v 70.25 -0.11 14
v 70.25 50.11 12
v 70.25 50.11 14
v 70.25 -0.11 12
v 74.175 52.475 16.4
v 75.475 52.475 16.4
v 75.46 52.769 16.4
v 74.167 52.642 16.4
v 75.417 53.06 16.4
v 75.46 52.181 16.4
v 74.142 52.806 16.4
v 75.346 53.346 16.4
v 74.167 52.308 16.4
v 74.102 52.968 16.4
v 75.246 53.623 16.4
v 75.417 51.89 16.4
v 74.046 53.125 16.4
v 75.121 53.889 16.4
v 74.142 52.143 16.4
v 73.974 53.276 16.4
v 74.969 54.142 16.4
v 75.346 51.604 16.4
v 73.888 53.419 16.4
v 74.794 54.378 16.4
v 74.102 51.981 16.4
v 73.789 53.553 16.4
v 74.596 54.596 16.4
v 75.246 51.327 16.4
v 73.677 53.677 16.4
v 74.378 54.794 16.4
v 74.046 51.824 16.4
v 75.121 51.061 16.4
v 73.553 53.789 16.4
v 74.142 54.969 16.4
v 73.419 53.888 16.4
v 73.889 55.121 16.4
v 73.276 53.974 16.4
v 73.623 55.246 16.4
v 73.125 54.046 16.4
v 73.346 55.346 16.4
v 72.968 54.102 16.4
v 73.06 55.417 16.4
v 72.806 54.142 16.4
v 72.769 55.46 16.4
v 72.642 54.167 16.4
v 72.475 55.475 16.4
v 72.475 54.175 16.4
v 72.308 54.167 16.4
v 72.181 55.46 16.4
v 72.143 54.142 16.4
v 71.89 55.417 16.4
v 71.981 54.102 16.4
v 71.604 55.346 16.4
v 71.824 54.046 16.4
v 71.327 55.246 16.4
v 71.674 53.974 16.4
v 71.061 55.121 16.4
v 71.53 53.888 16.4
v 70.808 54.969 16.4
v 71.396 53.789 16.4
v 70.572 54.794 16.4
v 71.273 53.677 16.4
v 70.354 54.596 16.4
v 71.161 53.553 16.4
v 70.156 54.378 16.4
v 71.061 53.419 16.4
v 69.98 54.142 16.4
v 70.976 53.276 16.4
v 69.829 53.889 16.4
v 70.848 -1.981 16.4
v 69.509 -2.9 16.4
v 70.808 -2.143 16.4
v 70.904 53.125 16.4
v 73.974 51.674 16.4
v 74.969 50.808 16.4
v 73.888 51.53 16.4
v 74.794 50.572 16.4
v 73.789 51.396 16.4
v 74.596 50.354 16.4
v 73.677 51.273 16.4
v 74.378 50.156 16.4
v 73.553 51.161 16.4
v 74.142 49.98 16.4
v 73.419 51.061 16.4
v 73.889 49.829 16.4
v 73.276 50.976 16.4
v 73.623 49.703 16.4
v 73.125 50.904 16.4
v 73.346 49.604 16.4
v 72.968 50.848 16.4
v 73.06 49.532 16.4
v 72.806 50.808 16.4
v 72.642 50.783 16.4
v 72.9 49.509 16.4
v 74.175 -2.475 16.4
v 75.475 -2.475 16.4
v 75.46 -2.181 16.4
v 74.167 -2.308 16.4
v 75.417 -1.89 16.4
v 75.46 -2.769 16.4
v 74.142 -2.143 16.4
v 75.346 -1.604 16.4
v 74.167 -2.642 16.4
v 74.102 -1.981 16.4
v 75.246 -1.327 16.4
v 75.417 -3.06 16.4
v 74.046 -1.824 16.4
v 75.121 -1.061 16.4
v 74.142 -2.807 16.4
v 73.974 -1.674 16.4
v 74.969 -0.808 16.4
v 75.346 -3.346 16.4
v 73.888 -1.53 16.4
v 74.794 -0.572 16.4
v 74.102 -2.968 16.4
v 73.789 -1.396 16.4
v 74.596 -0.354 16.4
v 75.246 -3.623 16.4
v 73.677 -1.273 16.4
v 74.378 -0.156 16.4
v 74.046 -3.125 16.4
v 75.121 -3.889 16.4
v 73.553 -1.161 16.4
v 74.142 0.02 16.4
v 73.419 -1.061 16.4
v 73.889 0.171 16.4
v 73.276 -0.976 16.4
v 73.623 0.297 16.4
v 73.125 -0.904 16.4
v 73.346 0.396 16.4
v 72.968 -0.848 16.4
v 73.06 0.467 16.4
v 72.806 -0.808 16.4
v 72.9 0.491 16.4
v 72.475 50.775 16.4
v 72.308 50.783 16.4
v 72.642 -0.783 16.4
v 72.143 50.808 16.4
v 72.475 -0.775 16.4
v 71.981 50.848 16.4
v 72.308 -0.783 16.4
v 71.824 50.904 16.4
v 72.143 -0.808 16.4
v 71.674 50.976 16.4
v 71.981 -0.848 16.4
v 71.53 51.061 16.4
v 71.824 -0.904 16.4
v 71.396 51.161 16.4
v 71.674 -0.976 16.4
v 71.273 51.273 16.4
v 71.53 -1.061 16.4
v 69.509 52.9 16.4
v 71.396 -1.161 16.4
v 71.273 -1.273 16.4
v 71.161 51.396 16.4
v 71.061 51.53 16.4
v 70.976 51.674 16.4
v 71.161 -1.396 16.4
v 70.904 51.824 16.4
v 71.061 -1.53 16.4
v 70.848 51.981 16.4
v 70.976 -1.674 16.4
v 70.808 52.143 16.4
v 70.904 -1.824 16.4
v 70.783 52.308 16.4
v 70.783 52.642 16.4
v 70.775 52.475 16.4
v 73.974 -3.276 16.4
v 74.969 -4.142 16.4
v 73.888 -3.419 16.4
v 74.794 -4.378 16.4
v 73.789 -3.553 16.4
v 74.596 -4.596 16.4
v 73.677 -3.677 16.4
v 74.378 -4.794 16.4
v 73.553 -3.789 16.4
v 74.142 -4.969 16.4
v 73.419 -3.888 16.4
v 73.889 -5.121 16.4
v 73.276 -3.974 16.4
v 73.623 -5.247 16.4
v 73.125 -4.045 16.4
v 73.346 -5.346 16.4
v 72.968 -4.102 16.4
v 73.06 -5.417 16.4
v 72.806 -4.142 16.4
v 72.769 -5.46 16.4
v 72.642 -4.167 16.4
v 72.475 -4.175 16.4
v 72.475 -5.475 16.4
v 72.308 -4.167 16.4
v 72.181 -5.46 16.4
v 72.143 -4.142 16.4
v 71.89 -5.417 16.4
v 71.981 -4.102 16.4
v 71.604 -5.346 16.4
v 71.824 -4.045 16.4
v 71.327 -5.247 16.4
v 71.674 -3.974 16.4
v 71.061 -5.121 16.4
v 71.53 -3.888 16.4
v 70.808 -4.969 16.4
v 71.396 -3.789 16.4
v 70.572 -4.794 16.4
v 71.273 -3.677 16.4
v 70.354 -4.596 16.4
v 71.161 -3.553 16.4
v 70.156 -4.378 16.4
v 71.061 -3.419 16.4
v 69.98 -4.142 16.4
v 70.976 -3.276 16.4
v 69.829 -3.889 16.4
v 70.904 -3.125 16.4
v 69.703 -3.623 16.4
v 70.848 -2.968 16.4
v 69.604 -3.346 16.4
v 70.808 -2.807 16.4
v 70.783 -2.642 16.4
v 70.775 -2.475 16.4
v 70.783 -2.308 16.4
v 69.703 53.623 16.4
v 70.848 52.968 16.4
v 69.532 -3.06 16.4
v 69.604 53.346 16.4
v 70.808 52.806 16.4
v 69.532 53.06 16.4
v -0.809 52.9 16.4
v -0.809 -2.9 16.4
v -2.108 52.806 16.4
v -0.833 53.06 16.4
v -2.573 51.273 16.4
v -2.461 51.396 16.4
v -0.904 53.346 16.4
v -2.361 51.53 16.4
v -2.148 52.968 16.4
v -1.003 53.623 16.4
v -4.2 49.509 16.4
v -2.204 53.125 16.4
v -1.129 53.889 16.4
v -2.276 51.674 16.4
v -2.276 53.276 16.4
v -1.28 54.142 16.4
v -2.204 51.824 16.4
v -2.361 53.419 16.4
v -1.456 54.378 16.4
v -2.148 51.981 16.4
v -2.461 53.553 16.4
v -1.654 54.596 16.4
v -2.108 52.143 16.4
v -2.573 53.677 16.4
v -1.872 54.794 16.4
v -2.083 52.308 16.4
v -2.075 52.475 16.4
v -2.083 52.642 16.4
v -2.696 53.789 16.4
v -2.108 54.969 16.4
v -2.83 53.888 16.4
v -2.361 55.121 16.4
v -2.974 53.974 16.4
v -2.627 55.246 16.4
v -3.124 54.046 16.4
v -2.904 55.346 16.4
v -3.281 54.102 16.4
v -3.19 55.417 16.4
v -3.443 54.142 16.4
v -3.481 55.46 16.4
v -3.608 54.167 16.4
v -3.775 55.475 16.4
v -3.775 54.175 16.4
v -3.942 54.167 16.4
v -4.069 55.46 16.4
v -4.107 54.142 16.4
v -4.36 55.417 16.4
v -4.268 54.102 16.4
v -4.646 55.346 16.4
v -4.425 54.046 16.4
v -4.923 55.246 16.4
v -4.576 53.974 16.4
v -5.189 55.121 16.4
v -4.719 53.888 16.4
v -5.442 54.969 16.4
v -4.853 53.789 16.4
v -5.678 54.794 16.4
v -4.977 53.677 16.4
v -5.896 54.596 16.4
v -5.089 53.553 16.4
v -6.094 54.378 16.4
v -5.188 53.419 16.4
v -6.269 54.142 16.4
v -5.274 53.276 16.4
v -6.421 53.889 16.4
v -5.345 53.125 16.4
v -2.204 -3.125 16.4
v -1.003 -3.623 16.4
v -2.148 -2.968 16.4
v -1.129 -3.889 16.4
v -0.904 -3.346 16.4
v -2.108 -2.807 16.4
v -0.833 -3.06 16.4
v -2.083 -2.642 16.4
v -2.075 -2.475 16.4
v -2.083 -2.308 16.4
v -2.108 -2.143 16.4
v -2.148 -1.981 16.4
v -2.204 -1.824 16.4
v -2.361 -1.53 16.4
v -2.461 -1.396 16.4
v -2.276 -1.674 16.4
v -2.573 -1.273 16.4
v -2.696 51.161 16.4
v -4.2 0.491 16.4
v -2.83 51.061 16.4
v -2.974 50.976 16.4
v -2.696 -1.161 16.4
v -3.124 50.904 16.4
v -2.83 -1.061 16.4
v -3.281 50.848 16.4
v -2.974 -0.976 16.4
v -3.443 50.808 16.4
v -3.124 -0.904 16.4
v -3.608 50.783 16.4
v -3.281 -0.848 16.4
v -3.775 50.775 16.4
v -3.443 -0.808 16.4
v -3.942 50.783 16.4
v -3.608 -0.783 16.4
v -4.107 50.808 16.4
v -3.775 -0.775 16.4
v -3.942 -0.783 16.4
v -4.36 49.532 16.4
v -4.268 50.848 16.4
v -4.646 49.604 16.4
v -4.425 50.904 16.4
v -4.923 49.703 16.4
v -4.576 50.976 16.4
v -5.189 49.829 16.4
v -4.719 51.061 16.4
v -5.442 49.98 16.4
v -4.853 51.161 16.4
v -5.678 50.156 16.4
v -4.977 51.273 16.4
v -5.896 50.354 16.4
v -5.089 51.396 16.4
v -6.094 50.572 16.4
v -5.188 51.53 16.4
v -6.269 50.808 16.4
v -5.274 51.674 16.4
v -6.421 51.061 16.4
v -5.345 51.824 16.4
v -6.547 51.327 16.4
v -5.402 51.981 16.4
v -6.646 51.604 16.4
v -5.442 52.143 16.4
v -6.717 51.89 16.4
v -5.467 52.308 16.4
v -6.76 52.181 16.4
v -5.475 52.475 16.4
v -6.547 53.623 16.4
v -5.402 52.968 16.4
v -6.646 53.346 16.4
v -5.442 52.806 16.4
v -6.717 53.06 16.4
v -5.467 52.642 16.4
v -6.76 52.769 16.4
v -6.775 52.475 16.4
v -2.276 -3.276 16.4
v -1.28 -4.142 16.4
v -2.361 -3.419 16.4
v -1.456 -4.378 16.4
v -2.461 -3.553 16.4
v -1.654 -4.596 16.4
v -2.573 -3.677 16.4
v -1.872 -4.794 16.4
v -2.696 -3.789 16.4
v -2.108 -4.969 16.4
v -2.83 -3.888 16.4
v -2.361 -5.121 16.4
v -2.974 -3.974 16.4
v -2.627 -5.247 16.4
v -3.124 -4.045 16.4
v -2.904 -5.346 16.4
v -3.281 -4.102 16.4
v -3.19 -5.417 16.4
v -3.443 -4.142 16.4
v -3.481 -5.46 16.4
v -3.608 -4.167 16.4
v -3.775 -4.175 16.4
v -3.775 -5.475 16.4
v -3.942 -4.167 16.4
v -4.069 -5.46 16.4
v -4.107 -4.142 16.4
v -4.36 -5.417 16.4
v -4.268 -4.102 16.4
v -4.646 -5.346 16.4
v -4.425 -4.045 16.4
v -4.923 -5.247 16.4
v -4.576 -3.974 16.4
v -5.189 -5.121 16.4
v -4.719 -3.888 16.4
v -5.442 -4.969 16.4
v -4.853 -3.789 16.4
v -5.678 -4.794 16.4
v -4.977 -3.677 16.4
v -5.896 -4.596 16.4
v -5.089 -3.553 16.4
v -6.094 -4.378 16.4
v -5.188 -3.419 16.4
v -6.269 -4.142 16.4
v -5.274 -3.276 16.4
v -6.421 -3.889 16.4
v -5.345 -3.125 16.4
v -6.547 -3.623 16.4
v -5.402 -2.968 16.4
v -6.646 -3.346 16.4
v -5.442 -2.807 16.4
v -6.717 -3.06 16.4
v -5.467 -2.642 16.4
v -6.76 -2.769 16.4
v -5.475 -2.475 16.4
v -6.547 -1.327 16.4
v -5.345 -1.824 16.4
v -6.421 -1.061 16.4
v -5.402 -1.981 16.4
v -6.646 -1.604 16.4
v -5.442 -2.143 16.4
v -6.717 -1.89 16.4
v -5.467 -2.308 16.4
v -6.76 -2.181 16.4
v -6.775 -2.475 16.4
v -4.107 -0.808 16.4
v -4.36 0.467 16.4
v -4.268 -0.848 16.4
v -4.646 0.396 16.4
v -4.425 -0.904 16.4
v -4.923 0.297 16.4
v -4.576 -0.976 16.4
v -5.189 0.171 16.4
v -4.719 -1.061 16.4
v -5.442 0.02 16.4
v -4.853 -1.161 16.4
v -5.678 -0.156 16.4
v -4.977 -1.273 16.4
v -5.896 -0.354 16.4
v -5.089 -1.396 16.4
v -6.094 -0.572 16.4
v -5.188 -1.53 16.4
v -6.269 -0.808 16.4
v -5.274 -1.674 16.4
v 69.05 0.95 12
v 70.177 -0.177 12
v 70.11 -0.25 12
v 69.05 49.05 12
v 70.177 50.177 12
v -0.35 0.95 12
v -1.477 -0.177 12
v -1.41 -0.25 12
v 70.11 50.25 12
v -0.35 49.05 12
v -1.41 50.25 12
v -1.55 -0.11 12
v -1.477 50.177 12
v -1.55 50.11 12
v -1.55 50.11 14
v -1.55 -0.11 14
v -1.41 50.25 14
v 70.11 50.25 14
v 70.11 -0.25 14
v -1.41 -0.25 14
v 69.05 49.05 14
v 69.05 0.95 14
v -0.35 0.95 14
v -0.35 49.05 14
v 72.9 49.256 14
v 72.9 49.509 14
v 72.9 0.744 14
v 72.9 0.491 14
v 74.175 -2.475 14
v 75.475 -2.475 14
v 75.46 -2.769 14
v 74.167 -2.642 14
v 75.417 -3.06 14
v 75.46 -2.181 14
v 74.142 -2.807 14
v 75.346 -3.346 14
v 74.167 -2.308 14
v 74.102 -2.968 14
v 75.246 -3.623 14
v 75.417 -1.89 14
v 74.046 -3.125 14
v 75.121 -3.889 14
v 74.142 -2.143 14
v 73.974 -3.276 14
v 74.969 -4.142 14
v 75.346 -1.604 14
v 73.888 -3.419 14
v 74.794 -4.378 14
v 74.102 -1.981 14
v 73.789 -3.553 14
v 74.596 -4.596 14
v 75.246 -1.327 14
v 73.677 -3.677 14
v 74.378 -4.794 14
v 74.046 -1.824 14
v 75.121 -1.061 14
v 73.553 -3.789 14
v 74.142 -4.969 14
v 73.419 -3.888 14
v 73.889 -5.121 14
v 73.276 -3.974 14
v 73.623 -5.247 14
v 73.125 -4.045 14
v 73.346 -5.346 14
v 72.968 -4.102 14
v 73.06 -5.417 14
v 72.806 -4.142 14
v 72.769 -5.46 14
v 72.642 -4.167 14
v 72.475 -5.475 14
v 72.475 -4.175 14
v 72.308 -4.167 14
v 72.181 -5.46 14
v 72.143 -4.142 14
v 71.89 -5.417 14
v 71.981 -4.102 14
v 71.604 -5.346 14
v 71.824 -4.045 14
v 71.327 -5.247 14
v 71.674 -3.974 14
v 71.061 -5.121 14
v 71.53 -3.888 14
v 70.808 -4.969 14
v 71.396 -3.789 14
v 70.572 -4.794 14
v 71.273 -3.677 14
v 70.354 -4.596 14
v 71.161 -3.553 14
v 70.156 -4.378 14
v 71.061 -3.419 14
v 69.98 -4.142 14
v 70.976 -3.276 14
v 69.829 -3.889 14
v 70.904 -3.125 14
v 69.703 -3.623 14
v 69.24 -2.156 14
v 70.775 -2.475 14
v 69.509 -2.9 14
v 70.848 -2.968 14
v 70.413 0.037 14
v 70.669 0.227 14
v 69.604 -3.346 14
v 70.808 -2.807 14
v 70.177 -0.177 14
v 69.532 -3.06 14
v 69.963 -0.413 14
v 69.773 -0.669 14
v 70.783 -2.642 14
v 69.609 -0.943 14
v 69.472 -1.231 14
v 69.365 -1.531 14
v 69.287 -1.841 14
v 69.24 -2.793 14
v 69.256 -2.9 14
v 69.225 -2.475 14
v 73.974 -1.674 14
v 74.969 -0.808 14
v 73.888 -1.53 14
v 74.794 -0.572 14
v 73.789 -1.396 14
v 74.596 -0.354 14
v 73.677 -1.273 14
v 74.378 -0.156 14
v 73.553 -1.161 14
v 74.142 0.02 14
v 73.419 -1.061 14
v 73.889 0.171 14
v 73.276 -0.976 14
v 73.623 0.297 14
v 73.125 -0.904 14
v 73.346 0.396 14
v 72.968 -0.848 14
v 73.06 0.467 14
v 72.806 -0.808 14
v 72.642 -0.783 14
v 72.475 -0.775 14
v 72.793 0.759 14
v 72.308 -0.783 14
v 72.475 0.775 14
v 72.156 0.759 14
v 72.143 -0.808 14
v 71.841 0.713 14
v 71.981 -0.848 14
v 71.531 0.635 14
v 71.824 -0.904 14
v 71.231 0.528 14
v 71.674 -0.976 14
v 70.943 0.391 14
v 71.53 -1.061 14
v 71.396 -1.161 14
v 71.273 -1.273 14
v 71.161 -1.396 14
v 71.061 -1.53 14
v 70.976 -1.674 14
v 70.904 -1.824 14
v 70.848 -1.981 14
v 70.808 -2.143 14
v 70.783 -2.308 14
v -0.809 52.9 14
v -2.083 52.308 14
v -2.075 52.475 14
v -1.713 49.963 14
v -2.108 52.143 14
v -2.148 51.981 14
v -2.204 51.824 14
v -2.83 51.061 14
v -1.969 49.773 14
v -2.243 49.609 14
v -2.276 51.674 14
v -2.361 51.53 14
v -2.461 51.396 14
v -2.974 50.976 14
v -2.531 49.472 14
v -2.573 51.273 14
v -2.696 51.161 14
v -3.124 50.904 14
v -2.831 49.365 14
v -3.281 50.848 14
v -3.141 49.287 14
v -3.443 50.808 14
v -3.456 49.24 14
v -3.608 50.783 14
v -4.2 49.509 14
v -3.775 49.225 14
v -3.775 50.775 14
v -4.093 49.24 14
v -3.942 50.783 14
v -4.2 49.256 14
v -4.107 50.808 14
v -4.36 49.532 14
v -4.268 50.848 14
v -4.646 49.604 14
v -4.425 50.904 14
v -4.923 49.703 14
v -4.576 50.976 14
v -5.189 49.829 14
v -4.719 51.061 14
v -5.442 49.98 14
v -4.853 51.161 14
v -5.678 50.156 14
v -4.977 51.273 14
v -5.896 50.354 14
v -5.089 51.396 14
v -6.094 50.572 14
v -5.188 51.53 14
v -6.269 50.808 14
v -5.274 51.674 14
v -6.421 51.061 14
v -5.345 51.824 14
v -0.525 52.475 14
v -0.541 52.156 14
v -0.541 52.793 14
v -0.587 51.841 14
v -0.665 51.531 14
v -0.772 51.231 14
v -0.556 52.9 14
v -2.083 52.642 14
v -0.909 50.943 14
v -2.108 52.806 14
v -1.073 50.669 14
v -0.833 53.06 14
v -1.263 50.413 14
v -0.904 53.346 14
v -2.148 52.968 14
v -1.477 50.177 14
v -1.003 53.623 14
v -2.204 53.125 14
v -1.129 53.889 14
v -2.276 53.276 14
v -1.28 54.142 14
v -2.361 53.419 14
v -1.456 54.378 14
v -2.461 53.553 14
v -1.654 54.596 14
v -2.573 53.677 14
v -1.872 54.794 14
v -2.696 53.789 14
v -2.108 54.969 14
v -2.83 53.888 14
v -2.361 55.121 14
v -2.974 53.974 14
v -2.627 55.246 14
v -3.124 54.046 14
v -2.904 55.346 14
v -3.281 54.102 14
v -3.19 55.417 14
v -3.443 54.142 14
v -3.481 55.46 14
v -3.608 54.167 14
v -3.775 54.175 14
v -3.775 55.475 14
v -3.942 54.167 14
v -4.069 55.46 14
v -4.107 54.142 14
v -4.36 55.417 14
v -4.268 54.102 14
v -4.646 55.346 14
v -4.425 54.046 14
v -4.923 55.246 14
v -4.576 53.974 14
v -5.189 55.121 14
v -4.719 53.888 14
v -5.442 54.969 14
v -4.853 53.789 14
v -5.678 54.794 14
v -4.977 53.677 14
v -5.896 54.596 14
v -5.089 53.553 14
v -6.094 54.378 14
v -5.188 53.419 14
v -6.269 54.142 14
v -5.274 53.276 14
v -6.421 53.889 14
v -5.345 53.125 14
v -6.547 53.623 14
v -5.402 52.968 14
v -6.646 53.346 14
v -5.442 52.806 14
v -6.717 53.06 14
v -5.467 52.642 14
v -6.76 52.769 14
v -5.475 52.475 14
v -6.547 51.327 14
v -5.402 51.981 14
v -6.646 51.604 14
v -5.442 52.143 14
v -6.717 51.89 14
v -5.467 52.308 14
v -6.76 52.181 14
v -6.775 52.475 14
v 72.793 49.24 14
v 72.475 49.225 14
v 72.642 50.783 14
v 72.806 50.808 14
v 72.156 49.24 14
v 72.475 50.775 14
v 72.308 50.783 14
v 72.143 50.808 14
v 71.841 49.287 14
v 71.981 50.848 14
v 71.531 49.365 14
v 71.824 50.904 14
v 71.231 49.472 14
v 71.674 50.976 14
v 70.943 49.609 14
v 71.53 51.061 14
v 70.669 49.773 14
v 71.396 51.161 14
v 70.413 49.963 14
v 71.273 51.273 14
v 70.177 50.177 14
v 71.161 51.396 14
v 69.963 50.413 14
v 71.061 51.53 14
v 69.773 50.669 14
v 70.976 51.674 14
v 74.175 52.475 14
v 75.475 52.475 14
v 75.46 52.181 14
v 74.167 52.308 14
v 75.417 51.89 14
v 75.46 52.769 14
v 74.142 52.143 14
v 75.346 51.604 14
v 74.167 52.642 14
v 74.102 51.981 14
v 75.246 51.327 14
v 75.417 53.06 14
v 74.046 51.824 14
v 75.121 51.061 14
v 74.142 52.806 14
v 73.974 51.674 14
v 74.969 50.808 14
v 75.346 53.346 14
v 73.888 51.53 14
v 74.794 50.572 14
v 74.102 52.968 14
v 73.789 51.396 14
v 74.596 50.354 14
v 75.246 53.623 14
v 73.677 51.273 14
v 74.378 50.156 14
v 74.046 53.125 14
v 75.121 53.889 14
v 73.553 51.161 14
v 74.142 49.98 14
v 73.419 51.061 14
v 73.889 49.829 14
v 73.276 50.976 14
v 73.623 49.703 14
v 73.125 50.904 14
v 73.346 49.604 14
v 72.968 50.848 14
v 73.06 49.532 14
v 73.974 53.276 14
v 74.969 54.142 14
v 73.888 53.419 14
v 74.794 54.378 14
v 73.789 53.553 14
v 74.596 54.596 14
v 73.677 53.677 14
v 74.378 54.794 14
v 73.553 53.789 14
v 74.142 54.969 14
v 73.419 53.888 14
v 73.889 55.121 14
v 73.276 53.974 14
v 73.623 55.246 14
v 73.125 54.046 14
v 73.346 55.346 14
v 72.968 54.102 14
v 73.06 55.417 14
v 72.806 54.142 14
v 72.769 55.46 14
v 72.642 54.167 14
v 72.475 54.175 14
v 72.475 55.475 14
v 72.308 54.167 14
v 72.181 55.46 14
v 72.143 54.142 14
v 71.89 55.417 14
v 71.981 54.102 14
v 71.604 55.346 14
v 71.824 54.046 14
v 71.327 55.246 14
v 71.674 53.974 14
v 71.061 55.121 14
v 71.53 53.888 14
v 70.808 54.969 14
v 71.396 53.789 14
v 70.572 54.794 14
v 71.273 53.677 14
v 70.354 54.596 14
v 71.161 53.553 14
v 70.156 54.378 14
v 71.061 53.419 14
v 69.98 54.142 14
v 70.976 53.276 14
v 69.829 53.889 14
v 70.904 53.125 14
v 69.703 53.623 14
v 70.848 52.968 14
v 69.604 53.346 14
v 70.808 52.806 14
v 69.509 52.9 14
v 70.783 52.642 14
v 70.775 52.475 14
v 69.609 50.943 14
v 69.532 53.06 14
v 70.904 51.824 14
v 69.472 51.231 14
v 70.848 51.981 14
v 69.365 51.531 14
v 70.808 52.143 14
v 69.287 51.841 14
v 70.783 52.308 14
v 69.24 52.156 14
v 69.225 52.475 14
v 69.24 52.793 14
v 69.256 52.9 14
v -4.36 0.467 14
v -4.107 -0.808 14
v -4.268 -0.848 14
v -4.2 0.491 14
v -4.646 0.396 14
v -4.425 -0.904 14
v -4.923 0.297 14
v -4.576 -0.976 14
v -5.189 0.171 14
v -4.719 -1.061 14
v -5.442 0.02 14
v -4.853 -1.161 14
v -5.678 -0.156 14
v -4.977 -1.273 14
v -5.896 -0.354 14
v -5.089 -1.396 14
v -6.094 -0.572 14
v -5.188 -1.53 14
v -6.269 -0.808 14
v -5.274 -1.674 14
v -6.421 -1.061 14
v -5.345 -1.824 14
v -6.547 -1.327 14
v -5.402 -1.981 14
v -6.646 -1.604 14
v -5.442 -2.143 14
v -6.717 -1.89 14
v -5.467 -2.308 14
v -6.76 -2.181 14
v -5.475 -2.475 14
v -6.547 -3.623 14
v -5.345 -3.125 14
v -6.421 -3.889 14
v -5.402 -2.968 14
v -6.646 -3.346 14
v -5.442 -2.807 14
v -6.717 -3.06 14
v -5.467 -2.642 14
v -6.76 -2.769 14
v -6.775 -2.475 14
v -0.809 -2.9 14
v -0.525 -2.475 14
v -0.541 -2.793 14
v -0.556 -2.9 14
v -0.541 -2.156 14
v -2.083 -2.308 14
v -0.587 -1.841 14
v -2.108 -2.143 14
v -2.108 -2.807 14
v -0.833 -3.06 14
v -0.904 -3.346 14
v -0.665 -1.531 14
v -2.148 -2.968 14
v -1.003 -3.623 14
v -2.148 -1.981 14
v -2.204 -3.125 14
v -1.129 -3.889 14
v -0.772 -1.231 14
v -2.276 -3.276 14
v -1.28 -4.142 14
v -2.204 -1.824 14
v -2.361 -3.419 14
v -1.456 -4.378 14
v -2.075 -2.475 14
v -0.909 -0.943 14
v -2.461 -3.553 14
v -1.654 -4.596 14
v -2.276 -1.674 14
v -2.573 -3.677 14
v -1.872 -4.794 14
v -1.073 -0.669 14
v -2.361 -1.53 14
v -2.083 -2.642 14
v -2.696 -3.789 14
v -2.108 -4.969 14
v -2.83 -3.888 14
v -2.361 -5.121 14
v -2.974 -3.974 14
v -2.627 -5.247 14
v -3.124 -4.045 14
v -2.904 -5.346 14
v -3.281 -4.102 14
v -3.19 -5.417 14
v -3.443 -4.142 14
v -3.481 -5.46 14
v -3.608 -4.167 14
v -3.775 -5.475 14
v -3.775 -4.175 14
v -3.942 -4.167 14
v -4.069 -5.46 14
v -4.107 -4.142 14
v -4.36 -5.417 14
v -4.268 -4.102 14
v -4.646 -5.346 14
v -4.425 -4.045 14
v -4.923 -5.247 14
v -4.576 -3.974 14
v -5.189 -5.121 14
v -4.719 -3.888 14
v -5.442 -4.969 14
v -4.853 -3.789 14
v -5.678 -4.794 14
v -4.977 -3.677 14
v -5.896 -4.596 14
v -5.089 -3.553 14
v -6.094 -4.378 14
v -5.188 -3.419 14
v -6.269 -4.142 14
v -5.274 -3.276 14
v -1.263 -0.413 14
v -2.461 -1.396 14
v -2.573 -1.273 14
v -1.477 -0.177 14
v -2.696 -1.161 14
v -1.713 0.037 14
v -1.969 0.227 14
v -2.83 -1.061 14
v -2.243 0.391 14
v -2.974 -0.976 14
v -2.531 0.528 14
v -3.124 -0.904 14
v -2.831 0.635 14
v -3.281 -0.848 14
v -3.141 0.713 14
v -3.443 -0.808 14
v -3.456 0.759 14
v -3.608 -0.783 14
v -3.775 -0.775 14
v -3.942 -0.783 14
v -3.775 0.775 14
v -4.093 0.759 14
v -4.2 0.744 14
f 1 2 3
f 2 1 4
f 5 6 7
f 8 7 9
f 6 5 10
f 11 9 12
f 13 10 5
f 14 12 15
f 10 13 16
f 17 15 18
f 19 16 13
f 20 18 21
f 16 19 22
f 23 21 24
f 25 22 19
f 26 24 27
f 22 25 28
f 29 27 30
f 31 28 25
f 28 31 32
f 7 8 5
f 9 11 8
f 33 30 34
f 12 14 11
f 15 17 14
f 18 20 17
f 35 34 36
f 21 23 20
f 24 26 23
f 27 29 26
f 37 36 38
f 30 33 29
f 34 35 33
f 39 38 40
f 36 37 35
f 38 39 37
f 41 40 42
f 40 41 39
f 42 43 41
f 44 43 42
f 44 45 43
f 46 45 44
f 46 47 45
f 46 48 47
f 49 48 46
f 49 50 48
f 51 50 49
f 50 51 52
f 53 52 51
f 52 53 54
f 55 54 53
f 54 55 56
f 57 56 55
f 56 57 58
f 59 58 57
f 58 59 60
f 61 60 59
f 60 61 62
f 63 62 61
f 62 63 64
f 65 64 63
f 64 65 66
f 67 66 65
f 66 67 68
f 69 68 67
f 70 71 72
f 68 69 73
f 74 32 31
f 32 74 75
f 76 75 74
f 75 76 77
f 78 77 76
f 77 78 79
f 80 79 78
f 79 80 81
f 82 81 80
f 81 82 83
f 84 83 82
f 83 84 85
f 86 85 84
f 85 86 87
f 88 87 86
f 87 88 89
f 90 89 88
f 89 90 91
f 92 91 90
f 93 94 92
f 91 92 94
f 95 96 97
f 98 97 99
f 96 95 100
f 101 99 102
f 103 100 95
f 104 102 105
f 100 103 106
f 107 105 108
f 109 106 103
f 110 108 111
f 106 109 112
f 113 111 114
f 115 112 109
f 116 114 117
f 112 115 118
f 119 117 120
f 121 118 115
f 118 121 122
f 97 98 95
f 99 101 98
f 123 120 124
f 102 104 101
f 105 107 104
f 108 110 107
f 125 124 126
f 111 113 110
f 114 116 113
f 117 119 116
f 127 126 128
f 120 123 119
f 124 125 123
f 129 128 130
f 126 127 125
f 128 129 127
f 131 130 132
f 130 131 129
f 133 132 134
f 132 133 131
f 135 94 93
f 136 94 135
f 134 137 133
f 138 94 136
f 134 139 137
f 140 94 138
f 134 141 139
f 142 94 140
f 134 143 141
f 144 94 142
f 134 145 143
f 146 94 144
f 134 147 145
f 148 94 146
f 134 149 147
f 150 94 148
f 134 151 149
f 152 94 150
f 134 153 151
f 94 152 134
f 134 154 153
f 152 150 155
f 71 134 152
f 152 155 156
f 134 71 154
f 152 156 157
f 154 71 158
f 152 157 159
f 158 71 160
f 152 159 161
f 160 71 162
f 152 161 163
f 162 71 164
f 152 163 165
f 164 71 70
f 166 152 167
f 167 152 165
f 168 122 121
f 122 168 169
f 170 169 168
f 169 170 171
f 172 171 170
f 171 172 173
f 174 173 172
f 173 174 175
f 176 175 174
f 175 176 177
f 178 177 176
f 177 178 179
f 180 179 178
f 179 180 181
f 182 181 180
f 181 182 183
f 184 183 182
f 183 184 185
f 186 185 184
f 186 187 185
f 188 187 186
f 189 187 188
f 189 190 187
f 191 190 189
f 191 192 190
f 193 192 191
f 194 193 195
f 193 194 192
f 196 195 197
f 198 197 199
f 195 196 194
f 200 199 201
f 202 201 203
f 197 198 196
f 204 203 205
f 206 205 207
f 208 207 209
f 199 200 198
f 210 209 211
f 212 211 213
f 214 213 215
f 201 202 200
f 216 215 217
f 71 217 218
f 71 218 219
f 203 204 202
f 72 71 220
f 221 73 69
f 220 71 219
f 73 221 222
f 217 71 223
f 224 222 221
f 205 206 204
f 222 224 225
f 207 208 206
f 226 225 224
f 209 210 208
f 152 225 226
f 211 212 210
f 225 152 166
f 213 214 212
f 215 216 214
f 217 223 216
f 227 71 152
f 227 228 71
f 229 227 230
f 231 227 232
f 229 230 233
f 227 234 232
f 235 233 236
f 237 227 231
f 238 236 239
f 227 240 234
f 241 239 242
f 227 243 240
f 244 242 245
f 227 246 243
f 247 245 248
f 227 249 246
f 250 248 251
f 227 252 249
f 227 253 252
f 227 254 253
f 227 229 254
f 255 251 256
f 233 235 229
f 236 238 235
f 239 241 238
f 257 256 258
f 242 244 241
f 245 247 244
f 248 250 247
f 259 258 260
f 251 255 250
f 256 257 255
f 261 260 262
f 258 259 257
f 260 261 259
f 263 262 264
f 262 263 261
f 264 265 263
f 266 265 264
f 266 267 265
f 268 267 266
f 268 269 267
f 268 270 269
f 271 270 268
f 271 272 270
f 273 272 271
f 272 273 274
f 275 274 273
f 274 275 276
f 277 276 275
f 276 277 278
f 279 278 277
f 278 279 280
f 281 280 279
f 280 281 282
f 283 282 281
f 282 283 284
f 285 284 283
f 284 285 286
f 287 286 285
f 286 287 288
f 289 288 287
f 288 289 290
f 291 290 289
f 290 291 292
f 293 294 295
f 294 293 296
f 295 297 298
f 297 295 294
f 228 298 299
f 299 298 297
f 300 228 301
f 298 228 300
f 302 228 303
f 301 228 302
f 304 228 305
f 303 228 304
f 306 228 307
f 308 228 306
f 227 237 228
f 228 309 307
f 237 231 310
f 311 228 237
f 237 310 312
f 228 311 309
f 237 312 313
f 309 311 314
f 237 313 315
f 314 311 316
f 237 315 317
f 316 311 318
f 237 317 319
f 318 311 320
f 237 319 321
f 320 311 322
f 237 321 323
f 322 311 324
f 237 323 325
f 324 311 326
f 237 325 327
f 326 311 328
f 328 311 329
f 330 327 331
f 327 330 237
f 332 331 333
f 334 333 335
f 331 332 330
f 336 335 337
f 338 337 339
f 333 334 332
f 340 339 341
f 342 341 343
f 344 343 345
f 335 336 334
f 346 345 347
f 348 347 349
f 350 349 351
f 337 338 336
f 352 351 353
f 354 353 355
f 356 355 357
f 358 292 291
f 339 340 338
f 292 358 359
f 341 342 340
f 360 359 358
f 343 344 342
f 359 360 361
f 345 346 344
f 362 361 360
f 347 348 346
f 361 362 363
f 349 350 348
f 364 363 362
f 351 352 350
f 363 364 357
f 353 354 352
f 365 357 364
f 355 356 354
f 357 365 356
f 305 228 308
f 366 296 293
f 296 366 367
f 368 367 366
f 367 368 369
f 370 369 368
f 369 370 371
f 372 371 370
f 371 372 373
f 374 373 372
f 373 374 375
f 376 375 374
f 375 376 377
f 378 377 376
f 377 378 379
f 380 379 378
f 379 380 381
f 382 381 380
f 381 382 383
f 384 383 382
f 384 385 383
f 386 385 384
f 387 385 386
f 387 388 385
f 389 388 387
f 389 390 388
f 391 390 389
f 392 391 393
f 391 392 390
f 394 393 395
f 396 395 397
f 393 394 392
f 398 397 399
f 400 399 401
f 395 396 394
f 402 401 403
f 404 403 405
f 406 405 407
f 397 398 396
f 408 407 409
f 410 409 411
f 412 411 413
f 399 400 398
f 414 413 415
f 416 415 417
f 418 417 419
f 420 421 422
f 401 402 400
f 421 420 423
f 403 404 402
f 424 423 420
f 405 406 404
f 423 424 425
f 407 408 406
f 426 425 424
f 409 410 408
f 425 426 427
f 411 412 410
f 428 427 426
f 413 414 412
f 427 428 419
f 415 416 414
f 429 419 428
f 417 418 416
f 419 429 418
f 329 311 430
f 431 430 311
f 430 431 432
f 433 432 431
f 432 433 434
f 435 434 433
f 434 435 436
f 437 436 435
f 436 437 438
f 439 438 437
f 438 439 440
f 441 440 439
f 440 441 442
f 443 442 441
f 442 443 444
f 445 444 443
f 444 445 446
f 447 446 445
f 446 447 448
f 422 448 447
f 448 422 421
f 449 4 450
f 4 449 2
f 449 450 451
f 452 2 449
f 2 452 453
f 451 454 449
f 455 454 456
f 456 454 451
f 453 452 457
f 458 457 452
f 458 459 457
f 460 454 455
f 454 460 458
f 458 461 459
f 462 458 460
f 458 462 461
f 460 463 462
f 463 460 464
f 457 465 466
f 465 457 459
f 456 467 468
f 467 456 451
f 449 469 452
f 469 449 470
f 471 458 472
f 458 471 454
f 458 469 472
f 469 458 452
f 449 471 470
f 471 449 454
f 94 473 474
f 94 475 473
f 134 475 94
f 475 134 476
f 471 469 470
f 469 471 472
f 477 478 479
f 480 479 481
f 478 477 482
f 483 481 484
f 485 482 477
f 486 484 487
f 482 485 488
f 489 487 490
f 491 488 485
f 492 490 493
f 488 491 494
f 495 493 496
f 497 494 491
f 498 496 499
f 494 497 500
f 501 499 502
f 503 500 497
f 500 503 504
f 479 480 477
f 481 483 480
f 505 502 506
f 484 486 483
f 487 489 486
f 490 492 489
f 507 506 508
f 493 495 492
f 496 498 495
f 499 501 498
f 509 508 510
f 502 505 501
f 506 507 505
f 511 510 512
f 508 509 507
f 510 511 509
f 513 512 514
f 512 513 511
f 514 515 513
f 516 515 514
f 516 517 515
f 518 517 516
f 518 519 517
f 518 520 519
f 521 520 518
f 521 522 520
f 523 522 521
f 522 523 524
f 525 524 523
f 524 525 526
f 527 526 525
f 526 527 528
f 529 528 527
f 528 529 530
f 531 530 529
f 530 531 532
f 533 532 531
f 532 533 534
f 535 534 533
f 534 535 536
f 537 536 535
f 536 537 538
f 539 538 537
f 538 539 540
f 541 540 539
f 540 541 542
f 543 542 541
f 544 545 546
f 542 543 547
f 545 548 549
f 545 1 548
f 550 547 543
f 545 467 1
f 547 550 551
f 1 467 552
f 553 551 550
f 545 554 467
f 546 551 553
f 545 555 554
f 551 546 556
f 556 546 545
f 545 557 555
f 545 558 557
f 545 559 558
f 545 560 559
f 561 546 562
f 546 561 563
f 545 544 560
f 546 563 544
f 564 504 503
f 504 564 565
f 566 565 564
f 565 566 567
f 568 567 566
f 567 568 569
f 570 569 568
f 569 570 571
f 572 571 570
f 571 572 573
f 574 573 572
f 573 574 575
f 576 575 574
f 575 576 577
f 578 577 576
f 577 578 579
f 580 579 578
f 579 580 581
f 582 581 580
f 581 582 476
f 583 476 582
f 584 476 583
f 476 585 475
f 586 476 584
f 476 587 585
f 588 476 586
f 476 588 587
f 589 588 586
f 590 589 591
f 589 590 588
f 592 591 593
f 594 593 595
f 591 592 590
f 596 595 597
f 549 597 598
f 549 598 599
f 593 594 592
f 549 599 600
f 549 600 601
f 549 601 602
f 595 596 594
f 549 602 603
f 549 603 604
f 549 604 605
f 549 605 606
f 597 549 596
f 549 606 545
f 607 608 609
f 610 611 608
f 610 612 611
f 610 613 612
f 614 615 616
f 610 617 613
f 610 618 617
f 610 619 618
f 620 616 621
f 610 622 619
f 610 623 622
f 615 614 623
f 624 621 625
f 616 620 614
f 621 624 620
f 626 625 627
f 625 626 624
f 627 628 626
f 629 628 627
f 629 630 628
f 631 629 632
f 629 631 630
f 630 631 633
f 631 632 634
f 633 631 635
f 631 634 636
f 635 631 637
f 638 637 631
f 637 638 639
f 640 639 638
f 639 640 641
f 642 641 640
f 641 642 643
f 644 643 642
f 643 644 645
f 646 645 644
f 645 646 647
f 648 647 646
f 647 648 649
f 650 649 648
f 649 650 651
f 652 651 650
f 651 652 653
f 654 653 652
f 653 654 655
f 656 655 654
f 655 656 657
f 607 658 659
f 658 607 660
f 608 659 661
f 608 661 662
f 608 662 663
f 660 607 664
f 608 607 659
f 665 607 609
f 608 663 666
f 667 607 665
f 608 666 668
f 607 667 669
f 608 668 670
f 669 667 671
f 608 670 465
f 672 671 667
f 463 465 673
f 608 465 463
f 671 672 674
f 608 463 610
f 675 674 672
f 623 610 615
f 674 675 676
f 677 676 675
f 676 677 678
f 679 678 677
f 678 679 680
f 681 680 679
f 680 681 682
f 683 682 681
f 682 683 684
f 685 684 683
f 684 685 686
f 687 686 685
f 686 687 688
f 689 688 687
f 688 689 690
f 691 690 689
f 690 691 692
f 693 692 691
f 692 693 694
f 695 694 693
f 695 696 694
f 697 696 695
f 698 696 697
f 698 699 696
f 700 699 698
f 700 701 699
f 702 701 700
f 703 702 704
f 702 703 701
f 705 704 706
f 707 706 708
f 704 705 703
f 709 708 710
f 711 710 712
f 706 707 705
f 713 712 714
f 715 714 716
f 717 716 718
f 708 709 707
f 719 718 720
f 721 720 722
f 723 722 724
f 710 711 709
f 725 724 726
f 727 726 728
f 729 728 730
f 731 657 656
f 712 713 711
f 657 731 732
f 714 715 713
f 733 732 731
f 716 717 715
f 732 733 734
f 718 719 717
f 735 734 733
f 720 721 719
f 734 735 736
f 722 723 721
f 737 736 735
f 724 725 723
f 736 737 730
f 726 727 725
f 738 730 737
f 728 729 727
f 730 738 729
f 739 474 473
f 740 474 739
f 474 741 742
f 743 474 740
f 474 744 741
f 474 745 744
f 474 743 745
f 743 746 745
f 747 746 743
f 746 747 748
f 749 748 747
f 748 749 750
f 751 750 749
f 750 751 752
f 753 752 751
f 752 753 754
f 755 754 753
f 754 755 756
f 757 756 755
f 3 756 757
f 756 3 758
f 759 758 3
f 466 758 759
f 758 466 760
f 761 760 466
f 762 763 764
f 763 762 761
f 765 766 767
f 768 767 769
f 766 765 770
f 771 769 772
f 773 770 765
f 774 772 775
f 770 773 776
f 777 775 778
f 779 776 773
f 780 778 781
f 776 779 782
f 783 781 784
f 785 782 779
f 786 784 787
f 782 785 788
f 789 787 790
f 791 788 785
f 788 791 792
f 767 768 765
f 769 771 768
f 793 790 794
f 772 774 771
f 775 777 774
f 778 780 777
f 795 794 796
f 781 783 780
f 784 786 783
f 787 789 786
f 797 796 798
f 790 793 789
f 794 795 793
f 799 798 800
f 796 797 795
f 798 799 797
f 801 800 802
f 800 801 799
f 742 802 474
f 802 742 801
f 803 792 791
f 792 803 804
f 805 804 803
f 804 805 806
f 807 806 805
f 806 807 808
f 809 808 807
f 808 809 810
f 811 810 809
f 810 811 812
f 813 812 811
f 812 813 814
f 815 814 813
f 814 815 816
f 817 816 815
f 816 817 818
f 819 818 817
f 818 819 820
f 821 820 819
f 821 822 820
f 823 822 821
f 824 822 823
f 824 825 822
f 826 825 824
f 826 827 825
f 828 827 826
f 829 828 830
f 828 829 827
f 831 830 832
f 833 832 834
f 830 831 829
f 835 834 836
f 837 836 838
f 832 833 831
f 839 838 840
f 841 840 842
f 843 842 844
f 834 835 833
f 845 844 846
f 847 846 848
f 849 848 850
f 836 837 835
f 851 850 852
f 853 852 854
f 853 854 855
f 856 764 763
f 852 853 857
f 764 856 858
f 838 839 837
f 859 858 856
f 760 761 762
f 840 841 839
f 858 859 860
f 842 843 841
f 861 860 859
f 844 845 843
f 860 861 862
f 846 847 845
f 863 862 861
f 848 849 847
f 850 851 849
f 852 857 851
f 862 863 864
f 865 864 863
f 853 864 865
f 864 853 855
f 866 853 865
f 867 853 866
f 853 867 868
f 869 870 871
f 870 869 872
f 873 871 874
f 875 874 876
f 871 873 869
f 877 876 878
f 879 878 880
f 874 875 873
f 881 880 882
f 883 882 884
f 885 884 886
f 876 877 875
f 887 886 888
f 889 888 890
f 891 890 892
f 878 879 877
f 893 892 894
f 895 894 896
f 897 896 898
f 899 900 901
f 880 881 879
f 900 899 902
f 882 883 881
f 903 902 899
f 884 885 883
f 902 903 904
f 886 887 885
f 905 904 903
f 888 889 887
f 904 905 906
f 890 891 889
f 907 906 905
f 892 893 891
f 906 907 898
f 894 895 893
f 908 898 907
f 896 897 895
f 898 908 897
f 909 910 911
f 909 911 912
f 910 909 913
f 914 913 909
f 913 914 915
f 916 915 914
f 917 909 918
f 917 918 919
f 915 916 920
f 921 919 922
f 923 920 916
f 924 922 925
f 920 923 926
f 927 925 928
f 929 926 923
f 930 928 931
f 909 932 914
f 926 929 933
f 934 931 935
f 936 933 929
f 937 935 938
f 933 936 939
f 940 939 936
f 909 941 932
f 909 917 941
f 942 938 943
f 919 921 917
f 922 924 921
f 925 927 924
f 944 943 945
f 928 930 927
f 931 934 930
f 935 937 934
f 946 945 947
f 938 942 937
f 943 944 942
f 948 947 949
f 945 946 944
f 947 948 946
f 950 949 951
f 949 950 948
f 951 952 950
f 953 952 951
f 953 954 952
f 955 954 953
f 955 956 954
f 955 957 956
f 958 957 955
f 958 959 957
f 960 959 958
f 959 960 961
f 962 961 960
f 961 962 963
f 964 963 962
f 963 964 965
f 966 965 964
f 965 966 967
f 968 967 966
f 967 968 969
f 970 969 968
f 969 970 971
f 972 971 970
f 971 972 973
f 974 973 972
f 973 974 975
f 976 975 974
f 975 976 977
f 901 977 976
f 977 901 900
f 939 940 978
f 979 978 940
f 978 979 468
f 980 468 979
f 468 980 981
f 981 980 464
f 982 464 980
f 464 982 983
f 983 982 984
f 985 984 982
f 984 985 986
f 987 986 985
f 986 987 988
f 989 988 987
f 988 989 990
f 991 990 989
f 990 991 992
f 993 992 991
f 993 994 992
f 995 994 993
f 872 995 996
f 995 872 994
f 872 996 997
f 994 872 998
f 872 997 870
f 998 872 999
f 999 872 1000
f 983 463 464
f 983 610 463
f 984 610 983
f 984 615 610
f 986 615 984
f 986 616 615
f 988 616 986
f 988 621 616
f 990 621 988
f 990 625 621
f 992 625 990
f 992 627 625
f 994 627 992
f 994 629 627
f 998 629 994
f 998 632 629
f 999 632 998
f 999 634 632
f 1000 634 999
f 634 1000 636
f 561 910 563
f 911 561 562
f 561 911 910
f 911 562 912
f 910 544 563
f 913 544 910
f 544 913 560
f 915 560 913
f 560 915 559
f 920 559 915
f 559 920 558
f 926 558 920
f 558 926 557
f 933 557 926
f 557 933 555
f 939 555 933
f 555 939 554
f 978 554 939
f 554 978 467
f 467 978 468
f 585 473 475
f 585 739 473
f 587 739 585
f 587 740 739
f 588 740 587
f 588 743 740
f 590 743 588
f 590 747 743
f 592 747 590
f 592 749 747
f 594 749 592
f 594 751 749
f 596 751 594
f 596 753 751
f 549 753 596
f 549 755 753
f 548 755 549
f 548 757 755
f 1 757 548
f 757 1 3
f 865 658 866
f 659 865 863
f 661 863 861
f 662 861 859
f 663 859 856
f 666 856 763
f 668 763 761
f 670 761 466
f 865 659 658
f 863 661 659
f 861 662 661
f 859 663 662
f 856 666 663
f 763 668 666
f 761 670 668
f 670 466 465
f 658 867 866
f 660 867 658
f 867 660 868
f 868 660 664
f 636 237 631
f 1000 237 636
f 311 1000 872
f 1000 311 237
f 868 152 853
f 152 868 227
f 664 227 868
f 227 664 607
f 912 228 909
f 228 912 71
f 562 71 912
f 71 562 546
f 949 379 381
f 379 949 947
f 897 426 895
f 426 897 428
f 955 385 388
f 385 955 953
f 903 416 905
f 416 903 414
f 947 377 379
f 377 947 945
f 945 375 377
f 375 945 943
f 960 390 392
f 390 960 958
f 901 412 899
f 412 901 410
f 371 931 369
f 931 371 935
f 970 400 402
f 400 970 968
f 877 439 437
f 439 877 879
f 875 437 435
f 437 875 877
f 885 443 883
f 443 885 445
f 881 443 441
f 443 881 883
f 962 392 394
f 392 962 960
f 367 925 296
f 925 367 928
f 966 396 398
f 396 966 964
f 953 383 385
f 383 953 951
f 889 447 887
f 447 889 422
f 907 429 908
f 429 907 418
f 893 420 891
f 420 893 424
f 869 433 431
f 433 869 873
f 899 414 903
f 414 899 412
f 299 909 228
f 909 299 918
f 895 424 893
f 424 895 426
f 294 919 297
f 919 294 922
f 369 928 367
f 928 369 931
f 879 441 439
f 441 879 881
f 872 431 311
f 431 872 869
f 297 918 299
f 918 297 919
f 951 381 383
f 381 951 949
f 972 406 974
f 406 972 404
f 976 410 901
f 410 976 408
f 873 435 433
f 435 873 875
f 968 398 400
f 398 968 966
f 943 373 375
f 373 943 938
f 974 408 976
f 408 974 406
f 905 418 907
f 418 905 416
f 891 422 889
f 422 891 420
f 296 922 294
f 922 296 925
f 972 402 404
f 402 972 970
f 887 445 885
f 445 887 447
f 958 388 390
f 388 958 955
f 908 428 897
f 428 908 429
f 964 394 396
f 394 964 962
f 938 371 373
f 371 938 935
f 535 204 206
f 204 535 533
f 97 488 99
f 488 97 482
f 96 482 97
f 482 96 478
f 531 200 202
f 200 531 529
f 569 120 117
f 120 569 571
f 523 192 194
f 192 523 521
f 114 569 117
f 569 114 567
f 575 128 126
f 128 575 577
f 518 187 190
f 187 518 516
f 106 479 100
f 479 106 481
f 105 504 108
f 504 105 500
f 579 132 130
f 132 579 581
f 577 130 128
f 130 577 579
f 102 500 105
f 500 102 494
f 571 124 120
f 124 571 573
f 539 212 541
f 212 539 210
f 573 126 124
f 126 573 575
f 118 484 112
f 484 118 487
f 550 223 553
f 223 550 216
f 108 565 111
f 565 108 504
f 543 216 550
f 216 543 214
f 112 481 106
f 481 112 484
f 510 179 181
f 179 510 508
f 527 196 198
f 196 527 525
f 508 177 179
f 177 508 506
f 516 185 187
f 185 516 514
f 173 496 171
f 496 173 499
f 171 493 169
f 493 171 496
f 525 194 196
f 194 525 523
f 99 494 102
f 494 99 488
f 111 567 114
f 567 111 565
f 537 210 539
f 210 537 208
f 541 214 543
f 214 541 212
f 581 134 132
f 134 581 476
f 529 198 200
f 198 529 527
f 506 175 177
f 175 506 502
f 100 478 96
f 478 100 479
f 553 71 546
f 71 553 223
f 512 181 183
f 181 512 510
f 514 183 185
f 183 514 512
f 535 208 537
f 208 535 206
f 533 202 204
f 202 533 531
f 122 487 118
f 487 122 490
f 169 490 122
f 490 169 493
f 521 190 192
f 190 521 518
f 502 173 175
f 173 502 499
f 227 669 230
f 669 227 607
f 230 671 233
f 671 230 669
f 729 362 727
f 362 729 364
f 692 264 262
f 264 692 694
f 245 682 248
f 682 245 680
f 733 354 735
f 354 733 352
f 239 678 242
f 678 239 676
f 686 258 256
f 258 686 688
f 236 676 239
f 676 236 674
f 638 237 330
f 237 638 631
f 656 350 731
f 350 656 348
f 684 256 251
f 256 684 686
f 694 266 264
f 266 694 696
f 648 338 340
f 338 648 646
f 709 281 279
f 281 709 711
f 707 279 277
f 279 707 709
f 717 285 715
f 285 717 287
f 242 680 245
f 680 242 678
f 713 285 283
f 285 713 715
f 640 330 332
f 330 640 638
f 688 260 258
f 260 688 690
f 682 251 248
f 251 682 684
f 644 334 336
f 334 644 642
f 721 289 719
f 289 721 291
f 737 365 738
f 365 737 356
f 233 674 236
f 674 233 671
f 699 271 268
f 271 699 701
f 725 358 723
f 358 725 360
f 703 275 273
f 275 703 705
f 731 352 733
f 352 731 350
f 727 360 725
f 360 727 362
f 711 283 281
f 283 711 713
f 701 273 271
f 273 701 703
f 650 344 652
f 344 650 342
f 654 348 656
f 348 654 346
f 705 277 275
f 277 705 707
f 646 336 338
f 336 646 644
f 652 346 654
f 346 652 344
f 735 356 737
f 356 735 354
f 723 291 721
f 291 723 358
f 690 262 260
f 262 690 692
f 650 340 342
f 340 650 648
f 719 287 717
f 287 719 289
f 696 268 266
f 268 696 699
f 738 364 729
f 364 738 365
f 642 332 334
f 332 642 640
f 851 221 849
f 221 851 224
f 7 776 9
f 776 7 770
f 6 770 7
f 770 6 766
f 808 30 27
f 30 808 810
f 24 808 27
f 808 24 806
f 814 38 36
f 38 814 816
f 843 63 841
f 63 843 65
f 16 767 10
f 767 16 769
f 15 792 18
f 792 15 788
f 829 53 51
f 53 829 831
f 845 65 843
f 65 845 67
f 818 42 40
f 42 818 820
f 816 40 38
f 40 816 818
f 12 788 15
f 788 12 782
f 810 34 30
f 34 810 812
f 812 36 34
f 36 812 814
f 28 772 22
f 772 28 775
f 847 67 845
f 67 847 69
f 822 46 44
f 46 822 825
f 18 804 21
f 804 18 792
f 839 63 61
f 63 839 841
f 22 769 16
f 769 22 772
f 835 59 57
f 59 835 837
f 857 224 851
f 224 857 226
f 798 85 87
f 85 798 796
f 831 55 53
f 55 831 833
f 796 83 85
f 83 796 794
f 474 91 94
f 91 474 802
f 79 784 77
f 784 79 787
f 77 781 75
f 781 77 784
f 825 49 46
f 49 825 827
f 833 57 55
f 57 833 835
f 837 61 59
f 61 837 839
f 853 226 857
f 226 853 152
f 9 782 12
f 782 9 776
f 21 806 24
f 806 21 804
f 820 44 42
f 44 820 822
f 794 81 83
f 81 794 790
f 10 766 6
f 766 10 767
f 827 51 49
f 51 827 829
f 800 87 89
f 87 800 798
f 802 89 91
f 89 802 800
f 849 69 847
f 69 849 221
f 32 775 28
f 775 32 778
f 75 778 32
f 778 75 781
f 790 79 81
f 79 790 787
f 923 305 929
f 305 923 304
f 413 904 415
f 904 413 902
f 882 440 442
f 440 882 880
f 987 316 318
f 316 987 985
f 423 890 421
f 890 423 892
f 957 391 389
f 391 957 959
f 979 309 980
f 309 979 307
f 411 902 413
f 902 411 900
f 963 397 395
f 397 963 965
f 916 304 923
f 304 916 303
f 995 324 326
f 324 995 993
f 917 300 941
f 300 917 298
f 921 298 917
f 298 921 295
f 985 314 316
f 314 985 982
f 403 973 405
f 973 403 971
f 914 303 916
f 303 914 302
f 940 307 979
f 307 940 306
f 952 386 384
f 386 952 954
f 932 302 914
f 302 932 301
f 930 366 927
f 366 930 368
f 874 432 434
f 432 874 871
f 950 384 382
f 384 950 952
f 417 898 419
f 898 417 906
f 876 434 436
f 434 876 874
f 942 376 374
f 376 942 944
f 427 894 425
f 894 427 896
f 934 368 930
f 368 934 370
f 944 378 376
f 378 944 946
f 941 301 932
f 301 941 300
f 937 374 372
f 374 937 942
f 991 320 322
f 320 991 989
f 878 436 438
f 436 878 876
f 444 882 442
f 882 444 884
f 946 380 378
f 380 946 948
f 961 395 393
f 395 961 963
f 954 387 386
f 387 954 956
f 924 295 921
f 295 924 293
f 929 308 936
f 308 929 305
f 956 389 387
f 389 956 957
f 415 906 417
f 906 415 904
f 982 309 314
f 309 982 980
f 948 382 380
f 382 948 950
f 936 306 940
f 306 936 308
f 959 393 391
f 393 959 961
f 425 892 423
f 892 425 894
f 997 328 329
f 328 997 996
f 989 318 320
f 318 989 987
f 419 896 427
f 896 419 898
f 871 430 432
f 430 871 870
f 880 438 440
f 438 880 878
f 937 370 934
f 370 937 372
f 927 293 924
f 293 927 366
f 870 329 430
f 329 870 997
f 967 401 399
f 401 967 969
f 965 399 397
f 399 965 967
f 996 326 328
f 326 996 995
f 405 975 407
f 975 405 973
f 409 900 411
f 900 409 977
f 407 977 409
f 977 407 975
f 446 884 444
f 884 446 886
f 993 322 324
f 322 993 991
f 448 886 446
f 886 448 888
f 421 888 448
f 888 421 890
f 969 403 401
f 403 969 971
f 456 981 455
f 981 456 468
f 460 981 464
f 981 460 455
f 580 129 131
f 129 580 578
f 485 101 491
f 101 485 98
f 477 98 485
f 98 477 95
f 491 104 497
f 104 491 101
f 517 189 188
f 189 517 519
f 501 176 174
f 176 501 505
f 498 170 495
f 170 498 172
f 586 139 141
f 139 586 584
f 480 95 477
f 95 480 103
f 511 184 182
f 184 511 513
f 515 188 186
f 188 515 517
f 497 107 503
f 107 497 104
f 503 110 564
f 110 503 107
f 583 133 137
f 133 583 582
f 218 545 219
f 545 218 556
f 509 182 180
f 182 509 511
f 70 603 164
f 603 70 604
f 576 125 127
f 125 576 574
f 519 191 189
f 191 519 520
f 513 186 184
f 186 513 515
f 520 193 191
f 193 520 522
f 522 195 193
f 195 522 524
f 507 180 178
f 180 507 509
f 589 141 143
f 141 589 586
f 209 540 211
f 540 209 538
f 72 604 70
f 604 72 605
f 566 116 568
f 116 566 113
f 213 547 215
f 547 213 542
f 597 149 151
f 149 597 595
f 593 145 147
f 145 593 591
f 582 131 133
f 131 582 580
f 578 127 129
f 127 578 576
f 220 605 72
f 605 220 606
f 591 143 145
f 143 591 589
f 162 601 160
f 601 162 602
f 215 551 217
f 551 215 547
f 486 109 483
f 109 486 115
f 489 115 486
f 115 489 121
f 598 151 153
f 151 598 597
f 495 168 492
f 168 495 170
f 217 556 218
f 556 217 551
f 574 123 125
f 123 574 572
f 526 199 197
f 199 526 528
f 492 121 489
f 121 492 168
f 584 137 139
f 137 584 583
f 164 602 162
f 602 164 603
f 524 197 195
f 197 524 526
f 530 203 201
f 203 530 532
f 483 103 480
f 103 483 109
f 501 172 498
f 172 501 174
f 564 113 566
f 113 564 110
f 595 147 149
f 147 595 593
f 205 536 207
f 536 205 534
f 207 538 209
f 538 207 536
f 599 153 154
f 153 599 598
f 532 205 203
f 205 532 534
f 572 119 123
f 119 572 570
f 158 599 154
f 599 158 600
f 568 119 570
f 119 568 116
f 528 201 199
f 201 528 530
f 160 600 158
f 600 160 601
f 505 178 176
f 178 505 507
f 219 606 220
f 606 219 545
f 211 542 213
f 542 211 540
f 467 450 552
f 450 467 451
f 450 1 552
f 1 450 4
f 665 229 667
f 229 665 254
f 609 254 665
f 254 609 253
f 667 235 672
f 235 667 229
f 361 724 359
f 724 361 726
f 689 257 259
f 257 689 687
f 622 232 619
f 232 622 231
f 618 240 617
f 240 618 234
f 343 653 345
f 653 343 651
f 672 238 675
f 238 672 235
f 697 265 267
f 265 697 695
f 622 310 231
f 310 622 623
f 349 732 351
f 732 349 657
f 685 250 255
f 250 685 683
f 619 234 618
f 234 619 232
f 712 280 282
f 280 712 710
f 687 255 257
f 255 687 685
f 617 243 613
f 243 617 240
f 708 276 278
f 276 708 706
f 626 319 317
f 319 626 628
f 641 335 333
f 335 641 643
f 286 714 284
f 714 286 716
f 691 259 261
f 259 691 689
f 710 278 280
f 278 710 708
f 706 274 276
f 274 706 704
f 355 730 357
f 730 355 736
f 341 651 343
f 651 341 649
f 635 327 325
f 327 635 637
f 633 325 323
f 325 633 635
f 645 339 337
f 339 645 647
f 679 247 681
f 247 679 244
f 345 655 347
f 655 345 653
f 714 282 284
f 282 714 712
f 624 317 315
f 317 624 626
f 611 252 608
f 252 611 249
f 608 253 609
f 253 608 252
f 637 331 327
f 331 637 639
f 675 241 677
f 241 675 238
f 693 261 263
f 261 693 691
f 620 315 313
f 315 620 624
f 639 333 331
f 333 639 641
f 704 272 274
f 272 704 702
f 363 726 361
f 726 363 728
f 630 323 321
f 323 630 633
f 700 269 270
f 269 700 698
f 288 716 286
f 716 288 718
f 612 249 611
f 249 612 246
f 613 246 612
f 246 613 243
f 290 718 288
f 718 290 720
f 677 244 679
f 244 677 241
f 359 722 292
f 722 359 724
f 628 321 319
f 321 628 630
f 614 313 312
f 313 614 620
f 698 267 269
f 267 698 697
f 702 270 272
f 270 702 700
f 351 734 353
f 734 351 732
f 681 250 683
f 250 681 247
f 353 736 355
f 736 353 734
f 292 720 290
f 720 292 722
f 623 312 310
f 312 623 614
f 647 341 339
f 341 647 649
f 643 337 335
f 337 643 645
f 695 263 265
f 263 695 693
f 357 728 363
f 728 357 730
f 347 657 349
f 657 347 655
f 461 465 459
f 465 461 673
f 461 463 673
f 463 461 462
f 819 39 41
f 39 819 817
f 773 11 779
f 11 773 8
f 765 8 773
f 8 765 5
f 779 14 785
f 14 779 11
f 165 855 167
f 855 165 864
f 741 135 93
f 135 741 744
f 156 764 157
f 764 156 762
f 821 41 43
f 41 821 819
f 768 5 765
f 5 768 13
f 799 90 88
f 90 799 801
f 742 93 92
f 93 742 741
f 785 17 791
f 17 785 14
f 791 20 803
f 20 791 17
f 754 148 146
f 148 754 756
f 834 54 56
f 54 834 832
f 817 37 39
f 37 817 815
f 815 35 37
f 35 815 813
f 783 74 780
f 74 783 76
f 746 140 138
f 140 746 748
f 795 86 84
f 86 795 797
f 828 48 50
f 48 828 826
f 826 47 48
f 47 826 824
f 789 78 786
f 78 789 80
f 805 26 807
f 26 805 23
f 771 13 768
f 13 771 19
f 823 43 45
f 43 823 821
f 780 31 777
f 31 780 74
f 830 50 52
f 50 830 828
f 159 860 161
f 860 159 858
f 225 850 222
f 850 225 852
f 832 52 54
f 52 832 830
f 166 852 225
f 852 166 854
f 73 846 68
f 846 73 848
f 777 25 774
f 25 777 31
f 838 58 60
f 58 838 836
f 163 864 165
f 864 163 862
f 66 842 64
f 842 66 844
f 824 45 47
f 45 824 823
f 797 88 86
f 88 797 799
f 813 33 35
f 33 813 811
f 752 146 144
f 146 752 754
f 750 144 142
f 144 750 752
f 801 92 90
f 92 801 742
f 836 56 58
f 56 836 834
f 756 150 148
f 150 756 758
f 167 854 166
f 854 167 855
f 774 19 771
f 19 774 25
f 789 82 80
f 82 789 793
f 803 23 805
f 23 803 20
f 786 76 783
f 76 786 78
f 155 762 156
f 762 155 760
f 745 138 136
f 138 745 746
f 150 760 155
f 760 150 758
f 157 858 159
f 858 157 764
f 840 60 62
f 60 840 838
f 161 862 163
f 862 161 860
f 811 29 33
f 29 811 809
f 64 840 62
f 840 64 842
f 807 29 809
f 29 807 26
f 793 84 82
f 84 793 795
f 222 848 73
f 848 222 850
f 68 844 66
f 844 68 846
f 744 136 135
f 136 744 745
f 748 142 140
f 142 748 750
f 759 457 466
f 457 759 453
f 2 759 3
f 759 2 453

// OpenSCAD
// body lid
difference() {
  union() {
    // body lid (lid_plate)
    multmatrix([[1, 0, 0, 34.35], [0, 1, 0, 25], [0, 0, 1, 14], [0, 0, 0, 1]]) translate([-38.55, -27.9, 0]) cube([77.1, 55.8, 2.4]);
    // add lid_lip (lip)
    multmatrix([[1, 0, 0, 34.35], [0, 1, 0, 25], [0, 0, 1, 12], [0, 0, 0, 1]]) difference() { translate([-35.9, -25.25, 0]) cube([71.8, 50.5, 4.4]); translate([0, 0, -1]) translate([-34.7, -24.05, 0]) cube([69.4, 48.1, 6.4]); }
    // add boss_1_pad (pad)
    multmatrix([[1, 0, 0, -3.774874], [0, 1, 0, -2.474874], [0, 0, 1, 14], [0, 0, 0, 1]]) cylinder(h=2.4, d=6, $fn=64);
    // add boss_2_pad (pad)
    multmatrix([[1, 0, 0, 72.474874], [0, 1, 0, -2.474874], [0, 0, 1, 14], [0, 0, 0, 1]]) cylinder(h=2.4, d=6, $fn=64);
    // add boss_3_pad (pad)
    multmatrix([[1, 0, 0, -3.774874], [0, 1, 0, 52.474874], [0, 0, 1, 14], [0, 0, 0, 1]]) cylinder(h=2.4, d=6, $fn=64);
    // add boss_4_pad (pad)
    multmatrix([[1, 0, 0, 72.474874], [0, 1, 0, 52.474874], [0, 0, 1, 14], [0, 0, 0, 1]]) cylinder(h=2.4, d=6, $fn=64);
  }
  // cut boss_1_lid_hole (screw_hole)
  multmatrix([[1, 0, 0, -3.774874], [0, 1, 0, -2.474874], [0, 0, 1, 13], [0, 0, 0, 1]]) cylinder(h=4.4, d=3.4, $fn=64);
  // cut boss_1_lip_notch (lip_notch)
  multmatrix([[1, 0, 0, -3.774874], [0, 1, 0, -2.474874], [0, 0, 1, 11], [0, 0, 0, 1]]) cylinder(h=3, d=6.5, $fn=64);
  // cut boss_2_lid_hole (screw_hole)
  multmatrix([[1, 0, 0, 72.474874], [0, 1, 0, -2.474874], [0, 0, 1, 13], [0, 0, 0, 1]]) cylinder(h=4.4, d=3.4, $fn=64);
  // cut boss_2_lip_notch (lip_notch)
  multmatrix([[1, 0, 0, 72.474874], [0, 1, 0, -2.474874], [0, 0, 1, 11], [0, 0, 0, 1]]) cylinder(h=3, d=6.5, $fn=64);
  // cut boss_3_lid_hole (screw_hole)
  multmatrix([[1, 0, 0, -3.774874], [0, 1, 0, 52.474874], [0, 0, 1, 13], [0, 0, 0, 1]]) cylinder(h=4.4, d=3.4, $fn=64);
  // cut boss_3_lip_notch (lip_notch)
  multmatrix([[1, 0, 0, -3.774874], [0, 1, 0, 52.474874], [0, 0, 1, 11], [0, 0, 0, 1]]) cylinder(h=3, d=6.5, $fn=64);
  // cut boss_4_lid_hole (screw_hole)
  multmatrix([[1, 0, 0, 72.474874], [0, 1, 0, 52.474874], [0, 0, 1, 13], [0, 0, 0, 1]]) cylinder(h=4.4, d=3.4, $fn=64);
  // cut boss_4_lip_notch (lip_notch)
  multmatrix([[1, 0, 0, 72.474874], [0, 1, 0, 52.474874], [0, 0, 1, 11], [0, 0, 0, 1]]) cylinder(h=3, d=6.5, $fn=64);
}
